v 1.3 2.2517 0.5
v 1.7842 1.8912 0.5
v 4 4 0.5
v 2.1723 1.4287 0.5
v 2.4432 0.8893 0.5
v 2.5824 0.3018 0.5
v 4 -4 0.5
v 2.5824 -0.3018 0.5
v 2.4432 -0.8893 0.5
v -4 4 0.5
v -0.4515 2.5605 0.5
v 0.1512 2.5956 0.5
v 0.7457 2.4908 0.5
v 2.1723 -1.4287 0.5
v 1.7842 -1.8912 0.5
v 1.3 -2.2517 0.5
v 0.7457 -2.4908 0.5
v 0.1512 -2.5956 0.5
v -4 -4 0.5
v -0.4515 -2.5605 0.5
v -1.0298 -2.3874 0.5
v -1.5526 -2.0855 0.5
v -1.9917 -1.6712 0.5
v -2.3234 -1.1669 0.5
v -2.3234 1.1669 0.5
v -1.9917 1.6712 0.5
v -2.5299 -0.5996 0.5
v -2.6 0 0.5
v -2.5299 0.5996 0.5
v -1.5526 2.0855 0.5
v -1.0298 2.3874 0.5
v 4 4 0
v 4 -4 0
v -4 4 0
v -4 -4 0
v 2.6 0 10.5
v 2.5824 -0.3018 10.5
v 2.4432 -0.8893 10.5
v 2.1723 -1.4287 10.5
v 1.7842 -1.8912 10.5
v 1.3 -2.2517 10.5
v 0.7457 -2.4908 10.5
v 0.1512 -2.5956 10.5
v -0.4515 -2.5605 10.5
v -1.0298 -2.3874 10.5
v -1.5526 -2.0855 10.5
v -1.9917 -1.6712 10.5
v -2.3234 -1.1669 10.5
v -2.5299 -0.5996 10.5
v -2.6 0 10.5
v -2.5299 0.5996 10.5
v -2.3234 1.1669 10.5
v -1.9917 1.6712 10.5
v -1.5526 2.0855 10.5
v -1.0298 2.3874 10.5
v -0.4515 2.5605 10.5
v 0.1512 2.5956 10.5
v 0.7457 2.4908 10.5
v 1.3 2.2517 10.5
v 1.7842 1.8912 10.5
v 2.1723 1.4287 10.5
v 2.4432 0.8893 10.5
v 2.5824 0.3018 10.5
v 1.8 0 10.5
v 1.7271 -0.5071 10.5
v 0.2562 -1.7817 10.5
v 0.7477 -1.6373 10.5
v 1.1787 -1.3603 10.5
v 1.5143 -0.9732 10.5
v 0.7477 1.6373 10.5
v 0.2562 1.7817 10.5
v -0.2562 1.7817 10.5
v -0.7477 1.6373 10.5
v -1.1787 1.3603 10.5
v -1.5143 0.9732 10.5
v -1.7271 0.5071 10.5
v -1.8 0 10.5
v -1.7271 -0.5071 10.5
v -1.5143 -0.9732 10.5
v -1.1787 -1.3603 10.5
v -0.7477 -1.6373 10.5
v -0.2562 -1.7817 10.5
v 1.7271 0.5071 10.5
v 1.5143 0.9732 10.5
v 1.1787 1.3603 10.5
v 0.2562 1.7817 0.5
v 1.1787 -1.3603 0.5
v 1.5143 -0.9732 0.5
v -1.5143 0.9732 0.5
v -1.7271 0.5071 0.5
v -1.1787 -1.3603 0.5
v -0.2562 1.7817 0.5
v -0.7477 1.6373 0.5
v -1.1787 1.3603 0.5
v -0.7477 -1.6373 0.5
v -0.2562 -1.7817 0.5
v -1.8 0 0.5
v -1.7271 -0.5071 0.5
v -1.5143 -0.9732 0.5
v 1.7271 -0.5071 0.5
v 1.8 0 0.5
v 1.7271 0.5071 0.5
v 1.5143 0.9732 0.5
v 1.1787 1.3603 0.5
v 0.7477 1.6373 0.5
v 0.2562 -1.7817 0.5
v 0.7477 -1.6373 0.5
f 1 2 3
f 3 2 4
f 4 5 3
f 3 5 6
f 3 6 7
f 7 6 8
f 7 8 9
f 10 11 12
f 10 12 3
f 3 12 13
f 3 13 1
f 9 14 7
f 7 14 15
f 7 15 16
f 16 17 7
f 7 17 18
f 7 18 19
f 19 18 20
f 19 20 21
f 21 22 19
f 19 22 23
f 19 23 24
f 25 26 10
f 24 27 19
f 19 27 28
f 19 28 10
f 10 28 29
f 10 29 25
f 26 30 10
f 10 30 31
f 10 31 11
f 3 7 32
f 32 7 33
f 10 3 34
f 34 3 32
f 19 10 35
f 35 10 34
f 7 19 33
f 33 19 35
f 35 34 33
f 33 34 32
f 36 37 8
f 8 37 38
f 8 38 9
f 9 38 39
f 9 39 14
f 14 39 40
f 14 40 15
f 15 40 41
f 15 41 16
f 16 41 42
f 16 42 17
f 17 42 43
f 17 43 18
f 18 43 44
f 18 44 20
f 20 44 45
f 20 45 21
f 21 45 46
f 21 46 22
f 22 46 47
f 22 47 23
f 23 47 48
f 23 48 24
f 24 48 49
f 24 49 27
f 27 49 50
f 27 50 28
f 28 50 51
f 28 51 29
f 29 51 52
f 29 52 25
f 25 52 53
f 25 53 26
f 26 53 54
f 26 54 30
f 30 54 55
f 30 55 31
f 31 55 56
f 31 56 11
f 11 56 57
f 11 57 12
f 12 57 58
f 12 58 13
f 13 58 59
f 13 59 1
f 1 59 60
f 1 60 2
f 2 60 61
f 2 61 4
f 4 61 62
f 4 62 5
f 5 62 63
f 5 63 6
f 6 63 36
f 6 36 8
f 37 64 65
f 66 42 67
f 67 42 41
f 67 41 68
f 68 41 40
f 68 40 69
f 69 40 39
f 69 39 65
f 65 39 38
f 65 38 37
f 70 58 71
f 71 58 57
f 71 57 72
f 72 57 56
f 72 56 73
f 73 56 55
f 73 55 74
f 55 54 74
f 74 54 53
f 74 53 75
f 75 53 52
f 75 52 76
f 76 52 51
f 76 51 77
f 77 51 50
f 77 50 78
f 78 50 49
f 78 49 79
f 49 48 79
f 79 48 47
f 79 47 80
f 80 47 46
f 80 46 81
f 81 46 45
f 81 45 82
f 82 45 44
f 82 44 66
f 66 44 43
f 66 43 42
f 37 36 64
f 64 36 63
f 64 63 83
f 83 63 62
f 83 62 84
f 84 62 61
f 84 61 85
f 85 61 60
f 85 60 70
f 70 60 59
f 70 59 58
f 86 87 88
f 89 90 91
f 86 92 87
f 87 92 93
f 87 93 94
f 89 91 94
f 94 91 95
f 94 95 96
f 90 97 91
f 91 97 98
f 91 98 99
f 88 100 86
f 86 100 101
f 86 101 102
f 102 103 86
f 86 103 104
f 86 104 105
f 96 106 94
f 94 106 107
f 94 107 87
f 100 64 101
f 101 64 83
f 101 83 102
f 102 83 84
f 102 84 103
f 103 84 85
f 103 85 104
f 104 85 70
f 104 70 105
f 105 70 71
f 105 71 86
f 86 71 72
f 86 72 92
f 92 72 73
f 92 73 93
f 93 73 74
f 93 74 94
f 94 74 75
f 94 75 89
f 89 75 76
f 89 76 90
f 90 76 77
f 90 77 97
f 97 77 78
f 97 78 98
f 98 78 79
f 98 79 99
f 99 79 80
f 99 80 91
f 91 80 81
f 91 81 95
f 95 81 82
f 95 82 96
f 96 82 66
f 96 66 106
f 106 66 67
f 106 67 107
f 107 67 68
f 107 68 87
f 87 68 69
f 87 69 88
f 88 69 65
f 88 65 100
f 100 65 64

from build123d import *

# Parameters (mm, degrees)
SKETCH1_W           = 8
SKETCH1_H           = 8
BOSS_EXTRUDE1_DEPTH = 0.5
SKETCH4_R           = 2.6
BOSS_EXTRUDE3_DEPTH = 10
SKETCH6_R           = 1.8
CUT_EXTRUDE2_DEPTH  = 10


with BuildPart() as part:
    # Sketch1 → Boss-Extrude1 (new body)
    with BuildSketch(Plane.XY):
        Rectangle(SKETCH1_W, SKETCH1_H)
    extrude(amount=BOSS_EXTRUDE1_DEPTH)

    # Sketch4 → Boss-Extrude3 (add)
    with BuildSketch(Plane.XY.offset(0.5)):
        Circle(SKETCH4_R)
    extrude(amount=BOSS_EXTRUDE3_DEPTH)

    # Sketch6 → Cut-Extrude2 (cut)
    with BuildSketch(Plane.XY.offset(10.5)):
        Circle(SKETCH6_R)
    extrude(amount=-CUT_EXTRUDE2_DEPTH, mode=Mode.SUBTRACT)


solid = part.part
